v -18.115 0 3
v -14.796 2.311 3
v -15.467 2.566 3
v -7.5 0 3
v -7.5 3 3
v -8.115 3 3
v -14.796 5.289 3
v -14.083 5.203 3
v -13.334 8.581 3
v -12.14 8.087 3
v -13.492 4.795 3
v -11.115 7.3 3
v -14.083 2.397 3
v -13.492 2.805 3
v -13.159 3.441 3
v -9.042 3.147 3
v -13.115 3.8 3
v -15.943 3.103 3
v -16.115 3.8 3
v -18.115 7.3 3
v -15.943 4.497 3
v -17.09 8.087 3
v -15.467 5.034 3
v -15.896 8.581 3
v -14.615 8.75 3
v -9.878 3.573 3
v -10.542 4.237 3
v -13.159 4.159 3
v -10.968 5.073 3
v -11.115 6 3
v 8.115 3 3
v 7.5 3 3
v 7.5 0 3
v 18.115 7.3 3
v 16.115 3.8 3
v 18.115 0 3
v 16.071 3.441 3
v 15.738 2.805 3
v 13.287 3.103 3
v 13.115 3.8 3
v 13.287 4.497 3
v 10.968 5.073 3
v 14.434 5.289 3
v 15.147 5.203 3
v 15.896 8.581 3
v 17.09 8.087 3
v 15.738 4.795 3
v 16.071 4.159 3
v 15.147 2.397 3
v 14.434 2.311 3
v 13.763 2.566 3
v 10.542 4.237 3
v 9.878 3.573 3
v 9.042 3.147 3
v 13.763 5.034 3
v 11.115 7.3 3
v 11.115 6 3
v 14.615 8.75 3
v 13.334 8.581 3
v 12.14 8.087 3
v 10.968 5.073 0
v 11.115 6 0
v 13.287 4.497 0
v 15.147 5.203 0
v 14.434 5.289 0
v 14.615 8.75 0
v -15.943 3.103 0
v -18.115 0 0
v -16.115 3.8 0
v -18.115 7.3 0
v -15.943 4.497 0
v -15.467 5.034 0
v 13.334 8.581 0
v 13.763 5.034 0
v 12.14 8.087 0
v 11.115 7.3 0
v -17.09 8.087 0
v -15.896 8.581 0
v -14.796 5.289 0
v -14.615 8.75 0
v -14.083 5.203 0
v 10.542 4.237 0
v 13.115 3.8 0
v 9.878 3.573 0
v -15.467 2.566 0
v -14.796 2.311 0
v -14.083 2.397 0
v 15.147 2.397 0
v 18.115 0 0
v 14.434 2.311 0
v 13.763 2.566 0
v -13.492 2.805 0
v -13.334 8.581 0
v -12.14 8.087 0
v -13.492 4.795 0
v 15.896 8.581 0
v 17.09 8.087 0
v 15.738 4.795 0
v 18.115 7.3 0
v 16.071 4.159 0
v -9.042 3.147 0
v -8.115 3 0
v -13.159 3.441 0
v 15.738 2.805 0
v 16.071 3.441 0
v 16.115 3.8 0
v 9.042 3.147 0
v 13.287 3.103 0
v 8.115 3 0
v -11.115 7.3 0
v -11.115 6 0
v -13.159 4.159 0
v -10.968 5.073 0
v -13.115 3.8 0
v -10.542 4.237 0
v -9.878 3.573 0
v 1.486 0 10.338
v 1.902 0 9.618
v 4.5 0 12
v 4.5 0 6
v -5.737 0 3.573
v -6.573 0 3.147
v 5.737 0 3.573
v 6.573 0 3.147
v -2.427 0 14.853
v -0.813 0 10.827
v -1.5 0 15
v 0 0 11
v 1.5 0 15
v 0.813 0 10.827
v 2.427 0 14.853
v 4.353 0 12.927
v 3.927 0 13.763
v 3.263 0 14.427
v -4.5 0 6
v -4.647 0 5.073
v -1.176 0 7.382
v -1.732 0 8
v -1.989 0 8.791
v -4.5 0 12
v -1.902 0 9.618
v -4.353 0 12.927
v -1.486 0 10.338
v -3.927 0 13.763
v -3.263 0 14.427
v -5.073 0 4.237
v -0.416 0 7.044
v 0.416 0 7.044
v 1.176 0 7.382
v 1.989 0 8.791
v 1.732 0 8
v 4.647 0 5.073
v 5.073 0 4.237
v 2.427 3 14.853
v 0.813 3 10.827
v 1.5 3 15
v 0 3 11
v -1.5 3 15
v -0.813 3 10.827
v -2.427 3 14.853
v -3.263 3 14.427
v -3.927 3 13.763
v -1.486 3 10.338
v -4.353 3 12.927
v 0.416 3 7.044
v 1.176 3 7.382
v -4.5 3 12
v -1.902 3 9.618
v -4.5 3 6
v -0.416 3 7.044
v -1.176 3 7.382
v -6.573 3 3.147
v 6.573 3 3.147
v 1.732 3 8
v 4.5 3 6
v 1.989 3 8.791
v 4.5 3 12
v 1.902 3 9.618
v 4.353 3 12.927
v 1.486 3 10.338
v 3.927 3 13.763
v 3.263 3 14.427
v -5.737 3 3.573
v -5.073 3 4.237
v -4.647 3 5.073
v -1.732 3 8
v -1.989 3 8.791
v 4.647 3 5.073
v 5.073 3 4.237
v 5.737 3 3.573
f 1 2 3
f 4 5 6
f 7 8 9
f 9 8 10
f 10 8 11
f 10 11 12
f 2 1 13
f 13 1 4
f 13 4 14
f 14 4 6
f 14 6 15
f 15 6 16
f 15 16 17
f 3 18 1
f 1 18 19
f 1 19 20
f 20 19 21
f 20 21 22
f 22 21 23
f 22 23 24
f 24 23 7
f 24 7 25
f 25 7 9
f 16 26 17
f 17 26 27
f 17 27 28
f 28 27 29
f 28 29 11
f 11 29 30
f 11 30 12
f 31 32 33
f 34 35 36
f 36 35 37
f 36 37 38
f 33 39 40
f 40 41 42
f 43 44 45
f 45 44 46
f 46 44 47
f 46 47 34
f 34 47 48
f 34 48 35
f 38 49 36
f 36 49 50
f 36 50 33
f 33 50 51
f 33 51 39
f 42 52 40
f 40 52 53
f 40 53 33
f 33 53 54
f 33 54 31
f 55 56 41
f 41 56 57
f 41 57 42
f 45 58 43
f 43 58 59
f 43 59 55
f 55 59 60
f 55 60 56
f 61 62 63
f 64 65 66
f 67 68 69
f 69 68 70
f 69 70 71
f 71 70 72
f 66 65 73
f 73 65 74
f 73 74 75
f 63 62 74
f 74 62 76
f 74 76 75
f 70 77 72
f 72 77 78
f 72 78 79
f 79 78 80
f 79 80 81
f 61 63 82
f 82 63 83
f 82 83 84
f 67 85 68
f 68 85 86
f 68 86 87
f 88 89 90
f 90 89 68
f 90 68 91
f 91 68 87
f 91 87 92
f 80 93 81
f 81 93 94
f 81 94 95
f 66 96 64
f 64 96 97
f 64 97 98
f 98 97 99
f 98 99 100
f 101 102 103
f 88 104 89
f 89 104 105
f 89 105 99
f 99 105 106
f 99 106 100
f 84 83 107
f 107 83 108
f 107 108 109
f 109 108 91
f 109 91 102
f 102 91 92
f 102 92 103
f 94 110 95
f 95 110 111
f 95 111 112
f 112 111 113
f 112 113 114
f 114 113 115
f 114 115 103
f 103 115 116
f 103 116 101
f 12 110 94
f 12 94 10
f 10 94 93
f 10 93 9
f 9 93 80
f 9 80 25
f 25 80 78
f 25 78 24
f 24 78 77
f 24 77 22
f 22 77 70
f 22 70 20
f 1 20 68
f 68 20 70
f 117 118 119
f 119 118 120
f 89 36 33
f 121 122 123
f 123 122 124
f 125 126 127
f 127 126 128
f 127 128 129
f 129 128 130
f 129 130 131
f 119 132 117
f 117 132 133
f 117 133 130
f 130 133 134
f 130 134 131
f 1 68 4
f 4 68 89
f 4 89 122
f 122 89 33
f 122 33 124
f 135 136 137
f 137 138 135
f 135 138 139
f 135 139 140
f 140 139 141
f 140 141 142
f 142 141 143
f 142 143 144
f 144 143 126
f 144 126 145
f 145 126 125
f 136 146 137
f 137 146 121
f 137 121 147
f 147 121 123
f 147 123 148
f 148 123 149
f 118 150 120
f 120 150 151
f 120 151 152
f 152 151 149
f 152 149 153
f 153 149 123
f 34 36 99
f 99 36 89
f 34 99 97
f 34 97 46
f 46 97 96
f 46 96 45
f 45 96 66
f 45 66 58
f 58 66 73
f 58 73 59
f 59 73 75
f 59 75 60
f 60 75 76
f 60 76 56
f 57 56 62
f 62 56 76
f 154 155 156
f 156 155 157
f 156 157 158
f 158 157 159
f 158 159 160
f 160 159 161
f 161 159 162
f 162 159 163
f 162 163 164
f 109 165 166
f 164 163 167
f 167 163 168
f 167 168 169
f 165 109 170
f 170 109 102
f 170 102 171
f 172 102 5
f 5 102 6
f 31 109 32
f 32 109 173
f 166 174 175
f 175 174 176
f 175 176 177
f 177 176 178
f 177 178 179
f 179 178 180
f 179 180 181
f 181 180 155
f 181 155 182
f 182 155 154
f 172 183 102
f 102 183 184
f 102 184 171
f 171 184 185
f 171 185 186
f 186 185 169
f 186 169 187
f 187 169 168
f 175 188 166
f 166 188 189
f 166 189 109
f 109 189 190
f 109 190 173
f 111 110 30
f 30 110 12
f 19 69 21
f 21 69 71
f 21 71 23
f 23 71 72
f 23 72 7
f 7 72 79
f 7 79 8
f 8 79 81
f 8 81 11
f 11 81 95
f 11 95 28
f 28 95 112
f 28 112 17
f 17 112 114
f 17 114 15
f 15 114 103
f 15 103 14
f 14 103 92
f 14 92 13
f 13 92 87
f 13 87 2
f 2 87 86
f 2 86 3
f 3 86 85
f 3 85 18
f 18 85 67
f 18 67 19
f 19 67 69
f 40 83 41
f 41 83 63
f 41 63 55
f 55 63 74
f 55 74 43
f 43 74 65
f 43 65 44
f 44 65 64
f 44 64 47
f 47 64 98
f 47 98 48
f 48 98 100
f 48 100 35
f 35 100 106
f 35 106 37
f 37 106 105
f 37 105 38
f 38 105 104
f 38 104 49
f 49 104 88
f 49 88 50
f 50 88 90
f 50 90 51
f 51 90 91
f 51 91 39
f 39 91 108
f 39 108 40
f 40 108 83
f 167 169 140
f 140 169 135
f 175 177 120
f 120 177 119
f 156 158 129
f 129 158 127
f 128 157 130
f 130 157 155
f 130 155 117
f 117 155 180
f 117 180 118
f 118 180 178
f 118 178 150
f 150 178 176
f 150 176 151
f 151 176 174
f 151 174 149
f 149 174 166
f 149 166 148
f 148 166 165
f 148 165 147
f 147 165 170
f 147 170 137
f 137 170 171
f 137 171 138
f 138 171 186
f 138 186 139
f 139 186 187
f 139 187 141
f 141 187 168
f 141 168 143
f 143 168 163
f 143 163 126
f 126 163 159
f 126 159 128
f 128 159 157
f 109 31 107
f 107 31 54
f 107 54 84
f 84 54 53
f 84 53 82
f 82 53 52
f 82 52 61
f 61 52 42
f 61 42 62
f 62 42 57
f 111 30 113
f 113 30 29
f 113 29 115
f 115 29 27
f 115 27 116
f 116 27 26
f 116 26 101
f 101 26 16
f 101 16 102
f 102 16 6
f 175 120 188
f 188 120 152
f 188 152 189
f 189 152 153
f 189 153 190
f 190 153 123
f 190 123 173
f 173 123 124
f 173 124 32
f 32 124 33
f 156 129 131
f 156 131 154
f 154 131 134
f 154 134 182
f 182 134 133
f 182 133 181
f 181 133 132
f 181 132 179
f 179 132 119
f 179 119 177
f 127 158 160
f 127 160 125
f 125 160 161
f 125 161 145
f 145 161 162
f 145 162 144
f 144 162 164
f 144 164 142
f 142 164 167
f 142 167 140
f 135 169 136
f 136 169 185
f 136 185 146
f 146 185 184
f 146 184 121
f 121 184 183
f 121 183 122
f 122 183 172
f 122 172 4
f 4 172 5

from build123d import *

# Parameters (mm, degrees)
ESQUISSE1_R             = 1.5
BOSS_EXTRU_1_DEPTH      = 3
ESQUISSE2_W             = 9
ESQUISSE2_H             = 3
BOSS_EXTRU_2_DEPTH      = 12
ESQUISSE3_R             = 2
ENL_V_MAT_EXTRU_1_DEPTH = 25.211832251
CONG_1_R                = 3


with BuildPart() as part:
    # Esquisse1 → Boss.-Extru.1 (new body)
    with BuildSketch(Plane.XY):
        with BuildLine():
            Line((-18.115, 7.3), (-18.115, 0))
            Line((-18.115, 0), (18.115, 0))
            Line((18.115, 0), (18.115, 7.3))
            ThreePointArc((18.115, 7.3), (14.615, 8.749747468), (11.115, 7.3))
            Line((11.115, 7.3), (11.115, 3))
            Line((11.115, 3), (-11.115, 3))
            Line((-11.115, 3), (-11.115, 7.3))
            ThreePointArc((-11.115, 7.3), (-14.615, 8.749747468), (-18.115, 7.3))
        make_face()
        with Locations((-14.615, 3.8)):
            Circle(ESQUISSE1_R, mode=Mode.SUBTRACT)
        with Locations((14.615, 3.8)):
            Circle(ESQUISSE1_R, mode=Mode.SUBTRACT)
    extrude(amount=BOSS_EXTRU_1_DEPTH)

    # Esquisse2 → Boss.-Extru.2 (add)
    with BuildSketch(Plane.XY.offset(3)):
        with Locations((0, 1.5)):
            Rectangle(ESQUISSE2_W, ESQUISSE2_H)
    extrude(amount=BOSS_EXTRU_2_DEPTH)

    # Esquisse3 → Enlèv. mat.-Extru.1 (cut, through all)
    with BuildSketch(Plane(origin=(0, 3, 0), x_dir=(1, 0, 0), z_dir=(0, 1, 0))):
        with Locations(Location((0, -9, 0), (0, 0, 270))):
            Circle(ESQUISSE3_R)
    extrude(amount=-ENL_V_MAT_EXTRU_1_DEPTH, mode=Mode.SUBTRACT)

    # Congé1
    cong_1_edges = [part.edges().sort_by_distance(p)[0] for p in [
        (-11.115, 3, 1.5),
        (11.115, 3, 1.5),
        (-4.5, 1.5, 3),
        (4.5, 1.5, 3),
        (-4.5, 1.5, 15),
        (4.5, 1.5, 15),
    ]]
    fillet(cong_1_edges, radius=CONG_1_R)


solid = part.part
